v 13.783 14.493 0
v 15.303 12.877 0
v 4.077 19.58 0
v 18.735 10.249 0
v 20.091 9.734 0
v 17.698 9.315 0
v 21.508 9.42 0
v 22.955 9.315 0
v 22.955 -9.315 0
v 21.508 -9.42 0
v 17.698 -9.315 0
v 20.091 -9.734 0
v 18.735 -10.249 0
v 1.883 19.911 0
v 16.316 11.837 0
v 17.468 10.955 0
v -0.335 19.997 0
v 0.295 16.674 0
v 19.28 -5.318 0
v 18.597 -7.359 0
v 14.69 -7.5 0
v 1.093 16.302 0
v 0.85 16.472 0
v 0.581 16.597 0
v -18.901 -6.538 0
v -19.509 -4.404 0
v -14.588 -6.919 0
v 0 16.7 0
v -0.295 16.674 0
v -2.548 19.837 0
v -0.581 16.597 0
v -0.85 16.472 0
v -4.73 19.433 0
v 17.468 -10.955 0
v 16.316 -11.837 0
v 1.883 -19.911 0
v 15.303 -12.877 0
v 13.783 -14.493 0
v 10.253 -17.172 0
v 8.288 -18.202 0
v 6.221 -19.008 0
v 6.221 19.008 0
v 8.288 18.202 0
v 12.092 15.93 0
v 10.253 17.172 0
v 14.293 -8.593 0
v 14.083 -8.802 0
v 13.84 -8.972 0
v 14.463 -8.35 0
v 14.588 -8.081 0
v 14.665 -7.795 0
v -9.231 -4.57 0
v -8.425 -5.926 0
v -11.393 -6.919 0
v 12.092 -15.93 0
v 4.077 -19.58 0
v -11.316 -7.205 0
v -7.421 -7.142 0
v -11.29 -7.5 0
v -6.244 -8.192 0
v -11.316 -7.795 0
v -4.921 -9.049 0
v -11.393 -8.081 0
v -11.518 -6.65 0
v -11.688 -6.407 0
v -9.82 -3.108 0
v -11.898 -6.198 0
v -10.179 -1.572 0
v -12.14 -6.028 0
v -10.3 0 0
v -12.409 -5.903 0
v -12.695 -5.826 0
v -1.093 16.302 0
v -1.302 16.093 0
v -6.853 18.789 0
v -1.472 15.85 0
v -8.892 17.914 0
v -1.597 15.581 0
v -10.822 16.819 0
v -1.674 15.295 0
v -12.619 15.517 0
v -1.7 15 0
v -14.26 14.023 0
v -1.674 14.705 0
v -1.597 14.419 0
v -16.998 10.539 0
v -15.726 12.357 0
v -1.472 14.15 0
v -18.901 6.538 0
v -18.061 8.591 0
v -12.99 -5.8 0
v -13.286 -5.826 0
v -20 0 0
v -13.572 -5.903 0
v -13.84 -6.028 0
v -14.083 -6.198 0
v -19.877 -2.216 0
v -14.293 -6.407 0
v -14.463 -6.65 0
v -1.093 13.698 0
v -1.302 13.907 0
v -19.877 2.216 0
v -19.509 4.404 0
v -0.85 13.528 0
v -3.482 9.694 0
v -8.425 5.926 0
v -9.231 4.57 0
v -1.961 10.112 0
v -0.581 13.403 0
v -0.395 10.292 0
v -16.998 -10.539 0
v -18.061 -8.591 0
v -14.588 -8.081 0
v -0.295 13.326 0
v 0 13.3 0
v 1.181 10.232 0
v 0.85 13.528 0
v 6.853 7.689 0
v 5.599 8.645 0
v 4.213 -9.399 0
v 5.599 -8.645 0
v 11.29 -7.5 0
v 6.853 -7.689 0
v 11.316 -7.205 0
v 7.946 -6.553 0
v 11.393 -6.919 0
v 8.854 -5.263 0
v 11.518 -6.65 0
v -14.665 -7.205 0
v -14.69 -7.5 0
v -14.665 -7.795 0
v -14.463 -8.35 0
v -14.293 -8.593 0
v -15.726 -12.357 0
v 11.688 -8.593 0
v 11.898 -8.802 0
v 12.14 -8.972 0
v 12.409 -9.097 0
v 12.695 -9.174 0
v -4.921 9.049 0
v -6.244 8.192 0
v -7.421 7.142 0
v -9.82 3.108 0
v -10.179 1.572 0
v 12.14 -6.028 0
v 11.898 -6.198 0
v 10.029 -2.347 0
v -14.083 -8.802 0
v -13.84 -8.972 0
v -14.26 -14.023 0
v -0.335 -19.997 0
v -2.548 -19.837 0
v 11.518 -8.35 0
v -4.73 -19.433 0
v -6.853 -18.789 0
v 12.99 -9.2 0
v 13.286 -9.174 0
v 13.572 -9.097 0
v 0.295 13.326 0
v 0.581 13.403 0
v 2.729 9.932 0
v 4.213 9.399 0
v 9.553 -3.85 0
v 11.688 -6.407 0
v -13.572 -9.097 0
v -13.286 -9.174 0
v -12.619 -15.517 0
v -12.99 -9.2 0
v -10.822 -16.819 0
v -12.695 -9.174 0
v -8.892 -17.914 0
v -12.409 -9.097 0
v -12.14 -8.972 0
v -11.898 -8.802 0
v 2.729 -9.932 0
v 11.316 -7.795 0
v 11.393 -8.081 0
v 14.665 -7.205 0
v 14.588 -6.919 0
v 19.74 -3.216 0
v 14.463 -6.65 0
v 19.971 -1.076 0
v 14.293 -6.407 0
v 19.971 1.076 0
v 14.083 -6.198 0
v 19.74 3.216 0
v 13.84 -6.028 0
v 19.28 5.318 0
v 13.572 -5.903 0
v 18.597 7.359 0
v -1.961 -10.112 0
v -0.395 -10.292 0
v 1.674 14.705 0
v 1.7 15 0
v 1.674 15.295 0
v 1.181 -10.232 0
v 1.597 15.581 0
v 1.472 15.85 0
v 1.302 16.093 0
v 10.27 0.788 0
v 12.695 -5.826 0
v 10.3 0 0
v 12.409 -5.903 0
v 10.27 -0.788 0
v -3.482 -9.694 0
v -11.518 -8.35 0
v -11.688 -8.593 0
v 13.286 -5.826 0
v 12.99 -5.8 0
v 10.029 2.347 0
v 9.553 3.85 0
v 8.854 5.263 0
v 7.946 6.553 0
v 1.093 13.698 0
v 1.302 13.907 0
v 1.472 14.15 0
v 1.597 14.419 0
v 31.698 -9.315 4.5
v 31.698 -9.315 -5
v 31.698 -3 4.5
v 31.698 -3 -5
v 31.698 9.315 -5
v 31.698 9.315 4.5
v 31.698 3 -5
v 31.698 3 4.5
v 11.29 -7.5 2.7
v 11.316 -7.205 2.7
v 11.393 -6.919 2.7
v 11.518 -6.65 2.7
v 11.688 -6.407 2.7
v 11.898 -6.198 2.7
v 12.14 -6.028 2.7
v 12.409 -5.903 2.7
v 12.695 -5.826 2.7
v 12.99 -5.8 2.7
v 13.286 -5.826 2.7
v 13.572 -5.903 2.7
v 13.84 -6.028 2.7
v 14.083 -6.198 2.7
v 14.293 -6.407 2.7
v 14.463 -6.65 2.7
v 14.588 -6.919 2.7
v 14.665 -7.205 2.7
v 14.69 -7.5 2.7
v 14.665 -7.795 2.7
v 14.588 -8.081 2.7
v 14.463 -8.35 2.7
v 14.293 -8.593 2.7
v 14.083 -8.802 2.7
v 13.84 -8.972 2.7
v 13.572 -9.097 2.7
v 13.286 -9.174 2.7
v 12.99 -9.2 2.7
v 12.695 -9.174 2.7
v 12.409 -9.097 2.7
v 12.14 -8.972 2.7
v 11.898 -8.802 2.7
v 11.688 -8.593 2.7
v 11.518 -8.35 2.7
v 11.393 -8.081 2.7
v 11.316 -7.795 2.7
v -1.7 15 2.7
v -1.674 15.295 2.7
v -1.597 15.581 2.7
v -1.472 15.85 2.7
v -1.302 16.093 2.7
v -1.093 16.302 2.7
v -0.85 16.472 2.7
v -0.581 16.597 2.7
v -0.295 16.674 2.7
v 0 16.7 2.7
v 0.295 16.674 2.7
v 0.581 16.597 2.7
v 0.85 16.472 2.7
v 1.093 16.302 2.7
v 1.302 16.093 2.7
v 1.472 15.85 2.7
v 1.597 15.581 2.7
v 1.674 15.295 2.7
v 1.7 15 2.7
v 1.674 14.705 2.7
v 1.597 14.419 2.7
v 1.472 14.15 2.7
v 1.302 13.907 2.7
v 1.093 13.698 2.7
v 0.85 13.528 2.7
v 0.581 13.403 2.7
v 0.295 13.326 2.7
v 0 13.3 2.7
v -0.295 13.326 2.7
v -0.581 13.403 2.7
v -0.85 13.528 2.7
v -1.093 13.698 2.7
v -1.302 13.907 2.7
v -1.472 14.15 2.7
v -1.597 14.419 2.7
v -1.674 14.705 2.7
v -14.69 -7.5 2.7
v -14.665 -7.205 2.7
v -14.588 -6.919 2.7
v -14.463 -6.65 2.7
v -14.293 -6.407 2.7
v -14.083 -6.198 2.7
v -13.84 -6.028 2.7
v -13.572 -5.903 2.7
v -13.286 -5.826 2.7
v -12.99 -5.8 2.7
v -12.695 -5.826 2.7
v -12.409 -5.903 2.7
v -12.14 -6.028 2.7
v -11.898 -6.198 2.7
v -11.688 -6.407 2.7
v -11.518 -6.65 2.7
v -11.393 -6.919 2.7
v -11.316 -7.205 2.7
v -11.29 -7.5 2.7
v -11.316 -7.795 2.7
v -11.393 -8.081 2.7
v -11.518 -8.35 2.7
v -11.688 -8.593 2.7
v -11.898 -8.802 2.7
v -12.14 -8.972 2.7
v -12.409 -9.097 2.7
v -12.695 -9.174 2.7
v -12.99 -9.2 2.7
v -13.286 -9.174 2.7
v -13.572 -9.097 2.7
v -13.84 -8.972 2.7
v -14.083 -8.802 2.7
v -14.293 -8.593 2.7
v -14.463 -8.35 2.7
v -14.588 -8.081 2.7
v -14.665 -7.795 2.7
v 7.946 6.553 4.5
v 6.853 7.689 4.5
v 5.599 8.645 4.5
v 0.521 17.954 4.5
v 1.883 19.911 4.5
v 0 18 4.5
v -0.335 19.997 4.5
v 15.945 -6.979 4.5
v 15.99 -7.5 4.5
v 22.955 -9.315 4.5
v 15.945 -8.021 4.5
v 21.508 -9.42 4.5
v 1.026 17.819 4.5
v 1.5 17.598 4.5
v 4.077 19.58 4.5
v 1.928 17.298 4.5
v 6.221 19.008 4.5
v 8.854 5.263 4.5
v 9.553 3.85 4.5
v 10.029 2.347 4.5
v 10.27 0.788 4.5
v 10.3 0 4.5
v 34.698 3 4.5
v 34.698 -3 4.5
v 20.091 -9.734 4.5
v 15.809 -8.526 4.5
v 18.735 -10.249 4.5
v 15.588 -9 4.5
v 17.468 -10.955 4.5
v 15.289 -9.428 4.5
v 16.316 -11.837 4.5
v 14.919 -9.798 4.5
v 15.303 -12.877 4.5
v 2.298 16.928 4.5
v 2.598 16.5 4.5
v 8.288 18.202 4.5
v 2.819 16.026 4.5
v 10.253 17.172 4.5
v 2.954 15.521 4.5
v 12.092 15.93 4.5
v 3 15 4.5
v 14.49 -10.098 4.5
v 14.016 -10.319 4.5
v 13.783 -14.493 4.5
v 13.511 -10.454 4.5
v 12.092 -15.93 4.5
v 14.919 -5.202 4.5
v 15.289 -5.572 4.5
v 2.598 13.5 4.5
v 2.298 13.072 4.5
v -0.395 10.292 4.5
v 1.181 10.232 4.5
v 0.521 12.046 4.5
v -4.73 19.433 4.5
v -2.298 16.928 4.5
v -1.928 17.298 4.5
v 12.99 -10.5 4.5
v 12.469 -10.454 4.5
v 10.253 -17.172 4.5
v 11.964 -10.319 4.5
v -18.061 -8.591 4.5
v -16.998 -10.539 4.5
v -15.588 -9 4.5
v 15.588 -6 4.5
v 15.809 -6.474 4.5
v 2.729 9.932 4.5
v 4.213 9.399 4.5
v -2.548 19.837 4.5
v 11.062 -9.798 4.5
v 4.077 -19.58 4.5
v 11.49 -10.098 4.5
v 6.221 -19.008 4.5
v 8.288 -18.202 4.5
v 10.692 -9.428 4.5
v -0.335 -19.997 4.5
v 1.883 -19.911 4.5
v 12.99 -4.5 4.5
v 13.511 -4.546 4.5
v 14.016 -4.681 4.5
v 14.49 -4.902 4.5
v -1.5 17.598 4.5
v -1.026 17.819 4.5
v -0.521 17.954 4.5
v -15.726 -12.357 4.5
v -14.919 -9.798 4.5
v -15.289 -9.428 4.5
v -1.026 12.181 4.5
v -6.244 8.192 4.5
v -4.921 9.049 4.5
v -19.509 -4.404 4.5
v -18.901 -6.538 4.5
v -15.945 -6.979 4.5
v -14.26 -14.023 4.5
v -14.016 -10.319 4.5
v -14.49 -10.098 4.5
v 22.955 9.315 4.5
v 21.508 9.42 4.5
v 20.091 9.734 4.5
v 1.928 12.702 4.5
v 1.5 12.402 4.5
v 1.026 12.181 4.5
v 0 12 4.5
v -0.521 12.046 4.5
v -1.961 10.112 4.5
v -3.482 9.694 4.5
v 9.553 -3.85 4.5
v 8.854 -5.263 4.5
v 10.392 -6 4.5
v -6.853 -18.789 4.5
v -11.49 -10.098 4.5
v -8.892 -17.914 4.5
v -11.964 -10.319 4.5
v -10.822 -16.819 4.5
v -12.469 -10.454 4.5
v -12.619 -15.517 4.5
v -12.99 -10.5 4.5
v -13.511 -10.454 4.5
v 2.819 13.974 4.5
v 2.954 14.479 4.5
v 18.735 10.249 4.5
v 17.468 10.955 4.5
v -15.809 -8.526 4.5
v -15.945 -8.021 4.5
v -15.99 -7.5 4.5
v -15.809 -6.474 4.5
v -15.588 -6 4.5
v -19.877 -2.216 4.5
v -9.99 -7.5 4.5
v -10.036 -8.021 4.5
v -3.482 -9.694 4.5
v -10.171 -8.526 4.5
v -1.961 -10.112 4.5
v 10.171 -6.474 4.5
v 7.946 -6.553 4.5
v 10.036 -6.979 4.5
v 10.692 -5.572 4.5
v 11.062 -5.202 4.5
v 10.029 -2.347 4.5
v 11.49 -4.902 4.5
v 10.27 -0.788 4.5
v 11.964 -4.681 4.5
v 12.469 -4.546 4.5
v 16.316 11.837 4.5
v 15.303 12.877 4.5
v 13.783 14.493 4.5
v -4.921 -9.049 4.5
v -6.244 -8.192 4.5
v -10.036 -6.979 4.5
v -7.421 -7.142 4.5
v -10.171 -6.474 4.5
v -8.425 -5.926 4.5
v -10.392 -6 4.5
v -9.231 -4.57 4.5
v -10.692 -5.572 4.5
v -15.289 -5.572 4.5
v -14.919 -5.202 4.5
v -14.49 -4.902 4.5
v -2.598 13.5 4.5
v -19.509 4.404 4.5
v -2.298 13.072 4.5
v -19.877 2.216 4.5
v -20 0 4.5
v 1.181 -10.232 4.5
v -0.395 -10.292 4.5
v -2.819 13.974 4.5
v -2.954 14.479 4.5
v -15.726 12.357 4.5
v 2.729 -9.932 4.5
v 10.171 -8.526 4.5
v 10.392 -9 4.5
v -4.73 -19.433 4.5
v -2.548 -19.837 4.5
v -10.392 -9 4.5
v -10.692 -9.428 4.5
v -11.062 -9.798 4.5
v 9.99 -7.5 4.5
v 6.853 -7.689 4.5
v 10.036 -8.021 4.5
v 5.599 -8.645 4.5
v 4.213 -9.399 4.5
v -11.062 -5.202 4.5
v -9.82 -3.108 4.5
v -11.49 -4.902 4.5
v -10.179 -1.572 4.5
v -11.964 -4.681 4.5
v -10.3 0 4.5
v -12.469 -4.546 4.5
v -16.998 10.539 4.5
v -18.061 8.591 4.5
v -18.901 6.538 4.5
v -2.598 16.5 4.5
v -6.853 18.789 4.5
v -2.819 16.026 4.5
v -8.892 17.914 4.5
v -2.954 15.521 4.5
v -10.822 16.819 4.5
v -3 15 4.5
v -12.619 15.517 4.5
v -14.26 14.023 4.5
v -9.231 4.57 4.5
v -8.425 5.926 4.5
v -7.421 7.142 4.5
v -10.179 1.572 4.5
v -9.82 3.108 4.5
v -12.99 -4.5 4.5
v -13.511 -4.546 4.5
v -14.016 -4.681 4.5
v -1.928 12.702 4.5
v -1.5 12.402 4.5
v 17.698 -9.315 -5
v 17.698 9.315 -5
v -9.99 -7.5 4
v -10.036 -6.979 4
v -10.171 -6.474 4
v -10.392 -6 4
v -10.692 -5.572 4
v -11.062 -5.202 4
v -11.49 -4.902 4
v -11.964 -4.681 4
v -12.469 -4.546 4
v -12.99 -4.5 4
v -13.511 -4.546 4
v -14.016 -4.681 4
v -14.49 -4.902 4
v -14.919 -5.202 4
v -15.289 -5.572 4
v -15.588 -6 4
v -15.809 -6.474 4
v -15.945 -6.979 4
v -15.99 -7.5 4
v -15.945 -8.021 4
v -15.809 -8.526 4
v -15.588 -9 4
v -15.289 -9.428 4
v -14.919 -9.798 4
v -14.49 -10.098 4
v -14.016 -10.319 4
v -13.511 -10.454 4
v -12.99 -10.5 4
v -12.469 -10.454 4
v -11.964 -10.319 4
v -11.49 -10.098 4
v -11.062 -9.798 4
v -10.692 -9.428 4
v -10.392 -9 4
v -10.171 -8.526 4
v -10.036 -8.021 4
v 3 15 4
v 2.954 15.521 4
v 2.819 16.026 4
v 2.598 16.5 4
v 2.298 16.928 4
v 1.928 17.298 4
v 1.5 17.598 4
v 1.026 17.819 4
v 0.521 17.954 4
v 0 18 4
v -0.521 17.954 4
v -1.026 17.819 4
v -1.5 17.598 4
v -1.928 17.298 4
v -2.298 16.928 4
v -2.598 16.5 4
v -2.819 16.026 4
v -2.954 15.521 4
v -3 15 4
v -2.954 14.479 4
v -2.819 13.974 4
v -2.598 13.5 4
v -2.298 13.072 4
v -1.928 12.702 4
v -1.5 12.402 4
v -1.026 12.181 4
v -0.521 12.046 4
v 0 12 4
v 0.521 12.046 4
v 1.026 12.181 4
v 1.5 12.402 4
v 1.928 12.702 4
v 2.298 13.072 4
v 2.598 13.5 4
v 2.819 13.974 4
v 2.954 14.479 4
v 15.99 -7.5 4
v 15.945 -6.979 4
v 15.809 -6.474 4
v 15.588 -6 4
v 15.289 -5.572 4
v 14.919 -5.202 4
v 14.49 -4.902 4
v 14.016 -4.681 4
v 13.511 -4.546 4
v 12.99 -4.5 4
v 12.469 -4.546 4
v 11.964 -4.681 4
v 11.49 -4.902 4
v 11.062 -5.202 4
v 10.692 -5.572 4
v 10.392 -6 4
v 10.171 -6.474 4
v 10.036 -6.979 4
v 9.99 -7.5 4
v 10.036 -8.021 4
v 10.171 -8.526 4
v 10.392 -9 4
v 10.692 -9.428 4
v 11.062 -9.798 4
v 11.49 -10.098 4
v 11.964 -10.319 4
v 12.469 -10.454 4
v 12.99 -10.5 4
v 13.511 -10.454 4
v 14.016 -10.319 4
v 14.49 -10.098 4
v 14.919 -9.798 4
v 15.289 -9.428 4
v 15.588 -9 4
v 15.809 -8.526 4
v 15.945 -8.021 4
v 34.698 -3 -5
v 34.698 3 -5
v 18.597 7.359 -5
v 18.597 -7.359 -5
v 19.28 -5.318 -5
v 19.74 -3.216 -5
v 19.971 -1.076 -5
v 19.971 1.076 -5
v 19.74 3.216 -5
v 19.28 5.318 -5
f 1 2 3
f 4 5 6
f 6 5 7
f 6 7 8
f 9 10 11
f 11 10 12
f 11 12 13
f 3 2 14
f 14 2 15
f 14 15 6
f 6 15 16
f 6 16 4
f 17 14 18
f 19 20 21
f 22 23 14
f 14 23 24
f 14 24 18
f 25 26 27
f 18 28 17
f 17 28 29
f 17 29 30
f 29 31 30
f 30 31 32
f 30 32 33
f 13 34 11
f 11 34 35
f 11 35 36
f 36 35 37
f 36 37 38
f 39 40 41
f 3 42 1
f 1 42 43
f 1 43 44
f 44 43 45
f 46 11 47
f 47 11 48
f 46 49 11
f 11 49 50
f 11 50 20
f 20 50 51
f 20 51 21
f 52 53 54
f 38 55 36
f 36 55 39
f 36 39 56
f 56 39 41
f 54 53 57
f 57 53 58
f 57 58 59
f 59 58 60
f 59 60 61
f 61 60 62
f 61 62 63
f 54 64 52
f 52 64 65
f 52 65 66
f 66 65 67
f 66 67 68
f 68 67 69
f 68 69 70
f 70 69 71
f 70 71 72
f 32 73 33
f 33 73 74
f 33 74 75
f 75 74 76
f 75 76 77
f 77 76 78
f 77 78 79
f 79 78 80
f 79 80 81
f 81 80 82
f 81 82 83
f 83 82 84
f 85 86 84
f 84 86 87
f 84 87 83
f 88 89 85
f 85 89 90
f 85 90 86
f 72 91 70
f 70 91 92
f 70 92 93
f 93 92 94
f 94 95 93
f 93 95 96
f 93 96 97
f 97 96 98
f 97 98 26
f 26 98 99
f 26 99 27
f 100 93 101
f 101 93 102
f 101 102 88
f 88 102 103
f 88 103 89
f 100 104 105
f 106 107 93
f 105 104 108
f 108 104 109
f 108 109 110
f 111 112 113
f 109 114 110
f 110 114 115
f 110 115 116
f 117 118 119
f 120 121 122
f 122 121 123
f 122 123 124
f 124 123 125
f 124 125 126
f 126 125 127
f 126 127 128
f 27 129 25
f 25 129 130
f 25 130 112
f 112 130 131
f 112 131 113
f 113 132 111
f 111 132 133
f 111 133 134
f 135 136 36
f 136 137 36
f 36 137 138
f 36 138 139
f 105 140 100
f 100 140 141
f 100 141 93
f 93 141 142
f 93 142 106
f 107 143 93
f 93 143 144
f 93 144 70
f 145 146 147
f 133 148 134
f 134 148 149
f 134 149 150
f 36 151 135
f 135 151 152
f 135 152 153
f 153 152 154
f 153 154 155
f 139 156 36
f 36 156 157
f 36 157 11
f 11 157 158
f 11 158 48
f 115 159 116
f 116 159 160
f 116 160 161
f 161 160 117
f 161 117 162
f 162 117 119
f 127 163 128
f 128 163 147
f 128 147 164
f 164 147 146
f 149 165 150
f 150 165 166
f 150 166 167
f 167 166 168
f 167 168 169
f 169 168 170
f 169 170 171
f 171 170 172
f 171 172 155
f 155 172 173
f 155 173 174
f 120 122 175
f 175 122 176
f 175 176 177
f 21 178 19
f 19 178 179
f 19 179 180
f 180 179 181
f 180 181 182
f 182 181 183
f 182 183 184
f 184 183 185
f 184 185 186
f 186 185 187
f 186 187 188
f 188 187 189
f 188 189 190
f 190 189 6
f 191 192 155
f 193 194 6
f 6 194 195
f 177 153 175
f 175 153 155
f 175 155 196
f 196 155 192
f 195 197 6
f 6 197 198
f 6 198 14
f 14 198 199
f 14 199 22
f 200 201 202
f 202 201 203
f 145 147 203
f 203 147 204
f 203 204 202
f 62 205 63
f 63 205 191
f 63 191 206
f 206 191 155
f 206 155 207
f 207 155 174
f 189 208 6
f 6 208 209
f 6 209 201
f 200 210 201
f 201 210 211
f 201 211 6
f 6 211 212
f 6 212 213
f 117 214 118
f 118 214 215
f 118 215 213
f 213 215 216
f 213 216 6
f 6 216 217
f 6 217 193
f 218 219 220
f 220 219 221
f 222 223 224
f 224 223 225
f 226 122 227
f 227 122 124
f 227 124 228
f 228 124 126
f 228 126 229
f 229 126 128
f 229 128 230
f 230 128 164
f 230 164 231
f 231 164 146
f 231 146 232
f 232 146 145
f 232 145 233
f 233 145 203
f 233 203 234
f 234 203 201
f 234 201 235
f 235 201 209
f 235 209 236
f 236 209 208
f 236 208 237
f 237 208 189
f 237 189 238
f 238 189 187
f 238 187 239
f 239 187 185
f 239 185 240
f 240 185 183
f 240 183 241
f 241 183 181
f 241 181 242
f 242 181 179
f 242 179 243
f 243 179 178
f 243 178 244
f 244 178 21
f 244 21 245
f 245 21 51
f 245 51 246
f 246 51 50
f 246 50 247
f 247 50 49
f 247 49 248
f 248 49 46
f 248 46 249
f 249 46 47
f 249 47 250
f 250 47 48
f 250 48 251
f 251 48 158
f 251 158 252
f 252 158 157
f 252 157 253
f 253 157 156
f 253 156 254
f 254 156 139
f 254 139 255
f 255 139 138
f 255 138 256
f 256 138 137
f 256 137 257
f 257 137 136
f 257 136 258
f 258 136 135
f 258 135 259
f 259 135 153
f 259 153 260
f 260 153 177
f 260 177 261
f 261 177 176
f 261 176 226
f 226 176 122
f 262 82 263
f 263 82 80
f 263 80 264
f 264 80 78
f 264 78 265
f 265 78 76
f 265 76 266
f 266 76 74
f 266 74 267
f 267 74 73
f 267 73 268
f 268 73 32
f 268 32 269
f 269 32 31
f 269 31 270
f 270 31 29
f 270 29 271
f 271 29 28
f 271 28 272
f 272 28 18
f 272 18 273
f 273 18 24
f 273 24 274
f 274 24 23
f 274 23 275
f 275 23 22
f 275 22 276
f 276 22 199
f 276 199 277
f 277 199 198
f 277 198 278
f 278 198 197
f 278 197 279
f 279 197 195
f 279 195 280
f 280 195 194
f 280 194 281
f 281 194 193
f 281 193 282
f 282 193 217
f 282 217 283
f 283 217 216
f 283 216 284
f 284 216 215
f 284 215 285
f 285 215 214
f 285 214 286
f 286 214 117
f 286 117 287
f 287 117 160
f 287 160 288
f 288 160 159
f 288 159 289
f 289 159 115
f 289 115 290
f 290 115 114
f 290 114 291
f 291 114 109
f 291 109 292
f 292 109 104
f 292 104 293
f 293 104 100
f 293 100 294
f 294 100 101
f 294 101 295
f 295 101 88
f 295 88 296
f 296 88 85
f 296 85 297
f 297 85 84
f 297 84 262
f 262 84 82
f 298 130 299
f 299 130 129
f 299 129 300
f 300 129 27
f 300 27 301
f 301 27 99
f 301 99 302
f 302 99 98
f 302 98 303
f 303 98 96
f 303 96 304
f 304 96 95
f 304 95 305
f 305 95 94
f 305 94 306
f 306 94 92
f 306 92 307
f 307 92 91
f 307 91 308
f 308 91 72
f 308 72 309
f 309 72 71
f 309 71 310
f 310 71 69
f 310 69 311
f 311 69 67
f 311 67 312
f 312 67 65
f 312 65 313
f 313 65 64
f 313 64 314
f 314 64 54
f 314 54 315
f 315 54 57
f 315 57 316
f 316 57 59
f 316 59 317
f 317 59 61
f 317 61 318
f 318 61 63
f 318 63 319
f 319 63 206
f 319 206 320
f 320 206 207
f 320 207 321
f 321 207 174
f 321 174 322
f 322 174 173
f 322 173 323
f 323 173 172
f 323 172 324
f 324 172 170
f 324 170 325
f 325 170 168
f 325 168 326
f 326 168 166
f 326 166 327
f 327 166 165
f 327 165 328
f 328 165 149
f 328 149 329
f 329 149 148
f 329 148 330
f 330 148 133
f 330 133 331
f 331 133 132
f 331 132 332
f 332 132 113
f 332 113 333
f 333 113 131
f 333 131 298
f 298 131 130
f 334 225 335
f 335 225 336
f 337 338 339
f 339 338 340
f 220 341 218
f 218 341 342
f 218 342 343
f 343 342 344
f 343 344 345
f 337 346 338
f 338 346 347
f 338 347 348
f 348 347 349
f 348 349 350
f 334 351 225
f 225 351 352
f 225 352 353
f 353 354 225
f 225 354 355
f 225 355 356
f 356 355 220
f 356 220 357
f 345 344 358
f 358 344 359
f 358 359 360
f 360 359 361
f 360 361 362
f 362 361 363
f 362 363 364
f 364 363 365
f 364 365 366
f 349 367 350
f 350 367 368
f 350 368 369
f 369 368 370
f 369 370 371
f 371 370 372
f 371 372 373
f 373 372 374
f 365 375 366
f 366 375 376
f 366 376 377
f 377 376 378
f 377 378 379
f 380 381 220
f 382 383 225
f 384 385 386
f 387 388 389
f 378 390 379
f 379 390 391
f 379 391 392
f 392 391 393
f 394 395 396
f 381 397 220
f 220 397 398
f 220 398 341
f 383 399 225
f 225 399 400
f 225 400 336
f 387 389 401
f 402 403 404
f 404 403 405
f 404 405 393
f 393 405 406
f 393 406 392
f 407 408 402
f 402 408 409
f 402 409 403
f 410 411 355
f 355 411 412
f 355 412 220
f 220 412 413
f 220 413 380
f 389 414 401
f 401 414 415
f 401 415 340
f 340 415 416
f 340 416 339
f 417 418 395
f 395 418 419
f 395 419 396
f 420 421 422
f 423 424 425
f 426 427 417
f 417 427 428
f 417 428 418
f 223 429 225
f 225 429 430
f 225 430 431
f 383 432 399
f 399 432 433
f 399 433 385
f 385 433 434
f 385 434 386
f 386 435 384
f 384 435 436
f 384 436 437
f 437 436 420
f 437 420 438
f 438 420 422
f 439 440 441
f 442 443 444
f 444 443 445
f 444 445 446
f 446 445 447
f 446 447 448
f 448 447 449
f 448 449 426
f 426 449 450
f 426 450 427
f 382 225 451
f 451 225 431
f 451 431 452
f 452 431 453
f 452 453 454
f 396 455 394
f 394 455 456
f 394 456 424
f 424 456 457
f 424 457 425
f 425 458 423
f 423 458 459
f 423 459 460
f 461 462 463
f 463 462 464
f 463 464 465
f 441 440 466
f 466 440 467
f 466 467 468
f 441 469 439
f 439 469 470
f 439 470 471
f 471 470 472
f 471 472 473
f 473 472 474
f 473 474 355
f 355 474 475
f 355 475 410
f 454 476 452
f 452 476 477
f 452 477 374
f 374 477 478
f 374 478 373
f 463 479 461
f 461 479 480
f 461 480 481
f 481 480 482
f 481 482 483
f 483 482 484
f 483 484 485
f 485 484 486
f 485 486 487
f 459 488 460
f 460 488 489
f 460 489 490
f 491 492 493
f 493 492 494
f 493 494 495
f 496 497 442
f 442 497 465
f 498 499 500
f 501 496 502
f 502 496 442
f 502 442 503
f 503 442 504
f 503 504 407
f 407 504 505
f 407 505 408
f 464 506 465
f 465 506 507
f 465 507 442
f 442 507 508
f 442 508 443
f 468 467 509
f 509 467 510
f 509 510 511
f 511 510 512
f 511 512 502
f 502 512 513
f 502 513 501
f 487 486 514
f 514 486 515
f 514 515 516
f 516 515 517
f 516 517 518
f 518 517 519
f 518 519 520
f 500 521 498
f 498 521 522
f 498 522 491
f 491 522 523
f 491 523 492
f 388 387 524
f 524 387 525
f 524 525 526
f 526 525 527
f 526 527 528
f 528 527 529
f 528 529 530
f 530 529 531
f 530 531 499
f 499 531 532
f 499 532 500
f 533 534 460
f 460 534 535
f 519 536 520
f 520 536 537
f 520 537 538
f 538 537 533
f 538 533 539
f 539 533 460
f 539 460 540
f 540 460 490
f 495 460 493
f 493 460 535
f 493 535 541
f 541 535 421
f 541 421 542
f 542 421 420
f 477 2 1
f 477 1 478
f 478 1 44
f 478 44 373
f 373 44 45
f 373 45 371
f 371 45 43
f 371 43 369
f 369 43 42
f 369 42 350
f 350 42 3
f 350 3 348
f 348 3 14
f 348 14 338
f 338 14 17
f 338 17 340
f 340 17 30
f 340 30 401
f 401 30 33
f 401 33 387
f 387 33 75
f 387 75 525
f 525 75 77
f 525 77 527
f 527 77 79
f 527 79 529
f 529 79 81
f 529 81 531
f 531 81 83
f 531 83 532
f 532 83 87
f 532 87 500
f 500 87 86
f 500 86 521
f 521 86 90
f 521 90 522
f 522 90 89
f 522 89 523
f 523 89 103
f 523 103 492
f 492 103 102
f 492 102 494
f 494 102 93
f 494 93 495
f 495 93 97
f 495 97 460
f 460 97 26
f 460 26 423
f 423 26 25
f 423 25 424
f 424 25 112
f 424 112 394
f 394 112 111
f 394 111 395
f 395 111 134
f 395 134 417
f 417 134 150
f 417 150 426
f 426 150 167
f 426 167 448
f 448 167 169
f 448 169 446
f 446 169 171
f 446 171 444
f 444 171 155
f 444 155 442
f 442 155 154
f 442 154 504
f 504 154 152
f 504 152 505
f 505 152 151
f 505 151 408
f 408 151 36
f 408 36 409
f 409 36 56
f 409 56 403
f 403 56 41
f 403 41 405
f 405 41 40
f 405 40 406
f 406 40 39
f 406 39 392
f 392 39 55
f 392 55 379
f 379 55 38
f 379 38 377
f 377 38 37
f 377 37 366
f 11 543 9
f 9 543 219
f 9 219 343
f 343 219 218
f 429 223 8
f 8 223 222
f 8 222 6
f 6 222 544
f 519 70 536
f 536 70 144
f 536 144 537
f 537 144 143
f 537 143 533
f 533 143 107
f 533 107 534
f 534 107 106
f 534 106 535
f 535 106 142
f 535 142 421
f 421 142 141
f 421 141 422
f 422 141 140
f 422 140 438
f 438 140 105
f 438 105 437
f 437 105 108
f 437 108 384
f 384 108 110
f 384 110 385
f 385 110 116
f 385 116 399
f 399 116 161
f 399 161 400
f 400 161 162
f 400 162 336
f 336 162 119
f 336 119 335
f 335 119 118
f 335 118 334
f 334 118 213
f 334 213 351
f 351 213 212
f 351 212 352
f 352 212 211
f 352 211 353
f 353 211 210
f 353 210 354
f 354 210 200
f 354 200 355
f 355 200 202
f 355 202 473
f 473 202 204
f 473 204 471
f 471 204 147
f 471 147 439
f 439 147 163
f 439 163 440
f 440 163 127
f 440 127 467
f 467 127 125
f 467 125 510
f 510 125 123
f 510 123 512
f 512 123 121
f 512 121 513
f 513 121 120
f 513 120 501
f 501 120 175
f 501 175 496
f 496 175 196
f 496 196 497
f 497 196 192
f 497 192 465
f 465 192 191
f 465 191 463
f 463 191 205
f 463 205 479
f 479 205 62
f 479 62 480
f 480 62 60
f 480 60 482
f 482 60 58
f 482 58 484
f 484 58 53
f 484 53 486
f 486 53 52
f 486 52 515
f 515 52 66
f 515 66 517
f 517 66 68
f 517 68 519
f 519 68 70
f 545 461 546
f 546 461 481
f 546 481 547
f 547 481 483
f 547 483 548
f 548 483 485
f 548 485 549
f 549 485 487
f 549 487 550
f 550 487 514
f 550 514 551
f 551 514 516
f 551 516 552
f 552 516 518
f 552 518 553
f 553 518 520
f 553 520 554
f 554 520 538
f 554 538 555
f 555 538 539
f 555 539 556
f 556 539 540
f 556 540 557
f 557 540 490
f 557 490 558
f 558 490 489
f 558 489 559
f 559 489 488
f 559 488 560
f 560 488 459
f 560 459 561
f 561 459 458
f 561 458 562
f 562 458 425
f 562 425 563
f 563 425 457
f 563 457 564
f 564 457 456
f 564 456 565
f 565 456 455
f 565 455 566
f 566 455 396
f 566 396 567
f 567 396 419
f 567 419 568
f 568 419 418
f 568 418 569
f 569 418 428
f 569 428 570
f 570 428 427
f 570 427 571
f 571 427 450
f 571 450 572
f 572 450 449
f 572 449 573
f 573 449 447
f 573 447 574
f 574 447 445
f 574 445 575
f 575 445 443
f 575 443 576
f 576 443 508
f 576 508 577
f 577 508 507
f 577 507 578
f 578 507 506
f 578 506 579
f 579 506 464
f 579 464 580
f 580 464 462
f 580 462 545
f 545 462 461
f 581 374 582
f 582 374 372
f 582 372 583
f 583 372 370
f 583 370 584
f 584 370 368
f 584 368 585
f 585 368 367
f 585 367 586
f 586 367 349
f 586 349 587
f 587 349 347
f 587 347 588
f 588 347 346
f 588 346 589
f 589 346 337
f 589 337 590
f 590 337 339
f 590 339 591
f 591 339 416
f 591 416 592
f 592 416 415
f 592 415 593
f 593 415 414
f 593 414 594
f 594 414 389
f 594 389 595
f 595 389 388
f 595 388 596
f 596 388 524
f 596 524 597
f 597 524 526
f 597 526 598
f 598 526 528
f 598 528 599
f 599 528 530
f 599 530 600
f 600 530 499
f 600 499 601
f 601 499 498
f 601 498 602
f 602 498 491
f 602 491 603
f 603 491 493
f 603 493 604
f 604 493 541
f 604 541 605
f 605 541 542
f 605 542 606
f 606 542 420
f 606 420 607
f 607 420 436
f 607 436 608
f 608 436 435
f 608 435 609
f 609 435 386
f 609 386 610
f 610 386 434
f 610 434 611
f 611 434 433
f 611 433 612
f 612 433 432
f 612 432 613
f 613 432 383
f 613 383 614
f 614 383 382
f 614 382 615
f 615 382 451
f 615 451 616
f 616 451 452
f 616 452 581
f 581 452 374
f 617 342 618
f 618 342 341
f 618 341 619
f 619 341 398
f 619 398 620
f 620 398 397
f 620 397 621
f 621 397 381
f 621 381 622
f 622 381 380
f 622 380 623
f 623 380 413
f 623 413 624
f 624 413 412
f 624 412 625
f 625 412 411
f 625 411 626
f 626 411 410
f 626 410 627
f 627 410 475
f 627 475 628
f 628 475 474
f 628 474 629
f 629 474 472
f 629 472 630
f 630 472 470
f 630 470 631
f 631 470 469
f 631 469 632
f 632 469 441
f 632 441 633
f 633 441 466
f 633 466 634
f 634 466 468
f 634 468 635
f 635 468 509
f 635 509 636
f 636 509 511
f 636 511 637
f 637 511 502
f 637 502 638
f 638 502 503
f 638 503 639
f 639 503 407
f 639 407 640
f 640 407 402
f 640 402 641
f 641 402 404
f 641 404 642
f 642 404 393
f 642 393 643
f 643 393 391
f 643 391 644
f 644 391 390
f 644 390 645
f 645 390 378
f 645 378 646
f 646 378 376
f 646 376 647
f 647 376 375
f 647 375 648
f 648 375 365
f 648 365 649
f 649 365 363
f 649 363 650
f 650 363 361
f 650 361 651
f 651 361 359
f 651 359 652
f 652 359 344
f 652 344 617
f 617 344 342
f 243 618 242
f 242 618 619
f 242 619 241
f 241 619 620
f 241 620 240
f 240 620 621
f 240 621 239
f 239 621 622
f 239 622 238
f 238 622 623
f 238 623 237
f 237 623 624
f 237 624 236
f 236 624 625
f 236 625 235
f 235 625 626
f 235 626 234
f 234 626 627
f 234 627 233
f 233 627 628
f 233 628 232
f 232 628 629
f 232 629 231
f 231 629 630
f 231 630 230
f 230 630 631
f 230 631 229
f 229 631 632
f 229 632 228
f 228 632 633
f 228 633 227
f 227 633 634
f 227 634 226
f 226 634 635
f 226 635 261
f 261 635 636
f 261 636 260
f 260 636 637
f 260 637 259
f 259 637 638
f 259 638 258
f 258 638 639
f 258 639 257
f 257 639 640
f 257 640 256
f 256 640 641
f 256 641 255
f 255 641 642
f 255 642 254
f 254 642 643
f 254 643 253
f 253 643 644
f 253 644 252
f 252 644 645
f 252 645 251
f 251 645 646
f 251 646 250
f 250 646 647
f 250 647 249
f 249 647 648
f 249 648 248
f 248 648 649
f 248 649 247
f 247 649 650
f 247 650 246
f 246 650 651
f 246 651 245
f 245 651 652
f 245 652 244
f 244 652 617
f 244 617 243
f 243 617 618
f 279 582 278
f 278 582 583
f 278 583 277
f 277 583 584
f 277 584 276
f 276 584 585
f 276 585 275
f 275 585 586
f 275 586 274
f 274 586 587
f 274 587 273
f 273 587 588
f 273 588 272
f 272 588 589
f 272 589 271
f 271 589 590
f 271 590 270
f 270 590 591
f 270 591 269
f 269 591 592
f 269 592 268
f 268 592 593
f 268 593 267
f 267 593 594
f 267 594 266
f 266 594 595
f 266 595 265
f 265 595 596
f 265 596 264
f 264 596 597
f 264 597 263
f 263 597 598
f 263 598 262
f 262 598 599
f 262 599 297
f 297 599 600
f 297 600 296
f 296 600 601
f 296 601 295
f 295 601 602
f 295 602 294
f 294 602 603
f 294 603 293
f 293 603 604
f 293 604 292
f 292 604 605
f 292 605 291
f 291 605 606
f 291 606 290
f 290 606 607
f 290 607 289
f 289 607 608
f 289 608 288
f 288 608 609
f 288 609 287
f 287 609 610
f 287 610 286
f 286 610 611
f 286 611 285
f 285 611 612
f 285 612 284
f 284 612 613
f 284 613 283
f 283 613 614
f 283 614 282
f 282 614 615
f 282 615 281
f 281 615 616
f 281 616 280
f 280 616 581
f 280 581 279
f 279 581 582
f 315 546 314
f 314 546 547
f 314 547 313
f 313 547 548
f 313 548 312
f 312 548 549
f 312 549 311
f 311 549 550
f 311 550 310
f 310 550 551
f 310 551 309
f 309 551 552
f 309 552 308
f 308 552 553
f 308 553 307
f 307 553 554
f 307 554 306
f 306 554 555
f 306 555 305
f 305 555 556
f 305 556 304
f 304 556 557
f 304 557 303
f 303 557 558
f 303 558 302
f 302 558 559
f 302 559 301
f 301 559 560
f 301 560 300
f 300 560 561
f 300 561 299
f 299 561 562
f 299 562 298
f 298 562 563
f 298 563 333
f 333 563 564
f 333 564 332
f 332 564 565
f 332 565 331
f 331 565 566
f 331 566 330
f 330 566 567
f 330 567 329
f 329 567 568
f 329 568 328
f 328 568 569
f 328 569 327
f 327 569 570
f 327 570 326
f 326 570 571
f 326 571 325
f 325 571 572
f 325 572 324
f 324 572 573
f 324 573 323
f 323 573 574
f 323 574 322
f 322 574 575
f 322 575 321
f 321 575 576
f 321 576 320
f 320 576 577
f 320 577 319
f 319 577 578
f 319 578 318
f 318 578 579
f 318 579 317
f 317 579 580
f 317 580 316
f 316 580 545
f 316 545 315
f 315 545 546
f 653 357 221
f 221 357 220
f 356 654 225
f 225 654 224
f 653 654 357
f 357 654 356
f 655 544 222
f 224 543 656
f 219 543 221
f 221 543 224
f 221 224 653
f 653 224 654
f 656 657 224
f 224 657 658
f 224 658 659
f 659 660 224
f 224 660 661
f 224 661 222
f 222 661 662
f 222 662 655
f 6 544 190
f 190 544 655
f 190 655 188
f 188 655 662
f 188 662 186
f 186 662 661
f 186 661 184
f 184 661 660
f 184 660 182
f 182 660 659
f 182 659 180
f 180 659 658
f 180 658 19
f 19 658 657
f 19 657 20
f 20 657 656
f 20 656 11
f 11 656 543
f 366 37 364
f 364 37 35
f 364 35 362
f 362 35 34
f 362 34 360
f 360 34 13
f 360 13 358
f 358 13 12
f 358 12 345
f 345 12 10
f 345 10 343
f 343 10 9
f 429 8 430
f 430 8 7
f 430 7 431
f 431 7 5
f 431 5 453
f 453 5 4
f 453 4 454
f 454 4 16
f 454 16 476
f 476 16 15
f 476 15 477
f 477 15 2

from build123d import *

# Parameters (mm, degrees)
CROQUIS1_R              = 10.3
CROQUIS1_R_2            = 1.7
SALIENTE_EXTRUIR1_DEPTH = 4.5
CROQUIS4_R              = 3
CORTAR_EXTRUIR2_DEPTH   = 2
CHAFL_N2_SIZE           = 1.5
SALIENTE_EXTRUIR2_DEPTH = 3
SALIENTE_EXTRUIR3_DEPTH = 5
CROQUIS8_R              = 20
CORTAR_EXTRUIR3_DEPTH   = 5
REDONDEO1_R             = 10


with BuildPart() as part:
    # Croquis1 → Saliente-Extruir1 (new body)
    with BuildSketch(Plane.XY):
        with BuildLine():
            Line((17.698364448, 9.314928657), (31.698364448, 9.314928657))
            Line((31.698364448, 9.314928657), (31.698364448, -9.314928657))
            Line((31.698364448, -9.314928657), (17.698364448, -9.314928657))
            ThreePointArc((17.698364448, -9.314928657), (-20, 0), (17.698364448, 9.314928657))
        make_face()
        Circle(CROQUIS1_R, mode=Mode.SUBTRACT)
        with Locations((12.990381057, -7.5)):
            Circle(CROQUIS1_R_2, mode=Mode.SUBTRACT)
        with Locations((0, 15)):
            Circle(CROQUIS1_R_2, mode=Mode.SUBTRACT)
        with Locations((-12.990381057, -7.5)):
            Circle(CROQUIS1_R_2, mode=Mode.SUBTRACT)
    extrude(amount=SALIENTE_EXTRUIR1_DEPTH)

    # Croquis4 → Cortar-Extruir2 (cut)
    with BuildSketch(Plane.XY.offset(4.5)):
        with Locations((0, 15)):
            Circle(CROQUIS4_R)
        with Locations((12.990381057, -7.5)):
            Circle(CROQUIS4_R)
        with Locations((-12.990381057, -7.5)):
            Circle(CROQUIS4_R)
    extrude(amount=-CORTAR_EXTRUIR2_DEPTH, mode=Mode.SUBTRACT)

    # Chaflán2
    # the kernel refuses this chamfer: 1.5 mm, written as the material it adds along each edge
    with BuildSketch(Plane(origin=(12.990381057, -7.5, 2.5), x_dir=(1, 0, 0), z_dir=(0, -1, 0))) as chafl_n2_piece_1_section:
        Polygon((3, CHAFL_N2_SIZE), (3 - CHAFL_N2_SIZE, 0), (3, 0), align=None)
    chafl_n2_piece_1 = revolve(axis=Axis((12.990381057, -7.5, 2.5), (0, 0, 1)), mode=Mode.PRIVATE)
    chafl_n2_piece_1 = chafl_n2_piece_1 - Plane(origin=(12.990381057, -7.5, 3.352298642), x_dir=(1, 0, 0), z_dir=(0, 0, -1)) * Cylinder(1.7, 13, mode=Mode.PRIVATE)
    add(chafl_n2_piece_1)
    with BuildSketch(Plane(origin=(0, 15, 2.5), x_dir=(1, 0, 0), z_dir=(0, -1, 0))) as chafl_n2_piece_2_section:
        Polygon((3, CHAFL_N2_SIZE), (3 - CHAFL_N2_SIZE, 0), (3, 0), align=None)
    chafl_n2_piece_2 = revolve(axis=Axis((0, 15, 2.5), (0, 0, 1)), mode=Mode.PRIVATE)
    chafl_n2_piece_2 = chafl_n2_piece_2 - Plane(origin=(0, 15, 3.352298642), x_dir=(1, 0, 0), z_dir=(0, 0, -1)) * Cylinder(1.7, 12, mode=Mode.PRIVATE)
    add(chafl_n2_piece_2)
    with BuildSketch(Plane(origin=(-12.990381057, -7.5, 2.5), x_dir=(1, 0, 0), z_dir=(0, -1, 0))) as chafl_n2_piece_3_section:
        Polygon((3, CHAFL_N2_SIZE), (3 - CHAFL_N2_SIZE, 0), (3, 0), align=None)
    chafl_n2_piece_3 = revolve(axis=Axis((-12.990381057, -7.5, 2.5), (0, 0, 1)), mode=Mode.PRIVATE)
    chafl_n2_piece_3 = chafl_n2_piece_3 - Plane(origin=(-12.990381057, -7.5, 3.352298642), x_dir=(1, 0, 0), z_dir=(0, 0, -1)) * Cylinder(1.7, 13, mode=Mode.PRIVATE)
    add(chafl_n2_piece_3)

    # Croquis6 → Saliente-Extruir2 (add)
    with BuildSketch(Plane(origin=(31.698364448, 0, 0), x_dir=(0, 0, -1), z_dir=(1, 0, 0))):
        Polygon((-4.5, 0), (-4.5, 3), (0, 3), (0, -3), (-4.5, -3), align=None)
    extrude(amount=SALIENTE_EXTRUIR2_DEPTH)

    # Croquis7 → Saliente-Extruir3 (add)
    with BuildSketch(Plane(origin=(0, 0, 0), x_dir=(-1, 0, 0), z_dir=(0, 0, -1))):
        Polygon((-17.698364448, -9.314928657), (-31.698364448, -9.314928657), (-31.698364448, -3), (-34.698364448, -3), (-34.698364448, 3), (-31.698364448, 3), (-31.698364448, 9.314928657), (-17.698364448, 9.314928657), align=None)
    extrude(amount=SALIENTE_EXTRUIR3_DEPTH)

    # Croquis8 → Cortar-Extruir3 (cut)
    with BuildSketch(Plane(origin=(0, 0, -5), x_dir=(-1, 0, 0), z_dir=(0, 0, -1))):
        Circle(CROQUIS8_R)
    extrude(amount=-CORTAR_EXTRUIR3_DEPTH, mode=Mode.SUBTRACT)

    # Redondeo1
    # the kernel refuses this fillet: 10 mm, written as the material it adds along each edge
    with BuildSketch(Plane(origin=(17.698364448, 9.314928657, 0), x_dir=(-0.5580103389046711, 0.829833996456818, 0), z_dir=(0, 0, 1))) as redondeo1_piece_1:
        with BuildLine():
            CenterArc((5.365064674, -9.942265498), REDONDEO1_R, 96.159770197, 49.921919005)
            Line((-2.933275291, -4.362162109), (0, 0))
            ThreePointArc((0, 0), (2.14602587, -0.115469003), (4.292051739, 0))
        make_face()
    extrude(amount=4.5)
    with BuildSketch(Plane(origin=(17.698364448, -9.314928657, 0), x_dir=(1, 0, 0), z_dir=(0, 0, 1))) as redondeo1_piece_2:
        with BuildLine():
            CenterArc((5.256668355, -10), REDONDEO1_R, 90, 49.921919005)
            ThreePointArc((-2.395009246, -3.561690448), (-1.101684519, -1.845278121), (0, 0))
            Line((0, 0), (5.256668355, 0))
        make_face()
    extrude(amount=4.5)


solid = part.part
